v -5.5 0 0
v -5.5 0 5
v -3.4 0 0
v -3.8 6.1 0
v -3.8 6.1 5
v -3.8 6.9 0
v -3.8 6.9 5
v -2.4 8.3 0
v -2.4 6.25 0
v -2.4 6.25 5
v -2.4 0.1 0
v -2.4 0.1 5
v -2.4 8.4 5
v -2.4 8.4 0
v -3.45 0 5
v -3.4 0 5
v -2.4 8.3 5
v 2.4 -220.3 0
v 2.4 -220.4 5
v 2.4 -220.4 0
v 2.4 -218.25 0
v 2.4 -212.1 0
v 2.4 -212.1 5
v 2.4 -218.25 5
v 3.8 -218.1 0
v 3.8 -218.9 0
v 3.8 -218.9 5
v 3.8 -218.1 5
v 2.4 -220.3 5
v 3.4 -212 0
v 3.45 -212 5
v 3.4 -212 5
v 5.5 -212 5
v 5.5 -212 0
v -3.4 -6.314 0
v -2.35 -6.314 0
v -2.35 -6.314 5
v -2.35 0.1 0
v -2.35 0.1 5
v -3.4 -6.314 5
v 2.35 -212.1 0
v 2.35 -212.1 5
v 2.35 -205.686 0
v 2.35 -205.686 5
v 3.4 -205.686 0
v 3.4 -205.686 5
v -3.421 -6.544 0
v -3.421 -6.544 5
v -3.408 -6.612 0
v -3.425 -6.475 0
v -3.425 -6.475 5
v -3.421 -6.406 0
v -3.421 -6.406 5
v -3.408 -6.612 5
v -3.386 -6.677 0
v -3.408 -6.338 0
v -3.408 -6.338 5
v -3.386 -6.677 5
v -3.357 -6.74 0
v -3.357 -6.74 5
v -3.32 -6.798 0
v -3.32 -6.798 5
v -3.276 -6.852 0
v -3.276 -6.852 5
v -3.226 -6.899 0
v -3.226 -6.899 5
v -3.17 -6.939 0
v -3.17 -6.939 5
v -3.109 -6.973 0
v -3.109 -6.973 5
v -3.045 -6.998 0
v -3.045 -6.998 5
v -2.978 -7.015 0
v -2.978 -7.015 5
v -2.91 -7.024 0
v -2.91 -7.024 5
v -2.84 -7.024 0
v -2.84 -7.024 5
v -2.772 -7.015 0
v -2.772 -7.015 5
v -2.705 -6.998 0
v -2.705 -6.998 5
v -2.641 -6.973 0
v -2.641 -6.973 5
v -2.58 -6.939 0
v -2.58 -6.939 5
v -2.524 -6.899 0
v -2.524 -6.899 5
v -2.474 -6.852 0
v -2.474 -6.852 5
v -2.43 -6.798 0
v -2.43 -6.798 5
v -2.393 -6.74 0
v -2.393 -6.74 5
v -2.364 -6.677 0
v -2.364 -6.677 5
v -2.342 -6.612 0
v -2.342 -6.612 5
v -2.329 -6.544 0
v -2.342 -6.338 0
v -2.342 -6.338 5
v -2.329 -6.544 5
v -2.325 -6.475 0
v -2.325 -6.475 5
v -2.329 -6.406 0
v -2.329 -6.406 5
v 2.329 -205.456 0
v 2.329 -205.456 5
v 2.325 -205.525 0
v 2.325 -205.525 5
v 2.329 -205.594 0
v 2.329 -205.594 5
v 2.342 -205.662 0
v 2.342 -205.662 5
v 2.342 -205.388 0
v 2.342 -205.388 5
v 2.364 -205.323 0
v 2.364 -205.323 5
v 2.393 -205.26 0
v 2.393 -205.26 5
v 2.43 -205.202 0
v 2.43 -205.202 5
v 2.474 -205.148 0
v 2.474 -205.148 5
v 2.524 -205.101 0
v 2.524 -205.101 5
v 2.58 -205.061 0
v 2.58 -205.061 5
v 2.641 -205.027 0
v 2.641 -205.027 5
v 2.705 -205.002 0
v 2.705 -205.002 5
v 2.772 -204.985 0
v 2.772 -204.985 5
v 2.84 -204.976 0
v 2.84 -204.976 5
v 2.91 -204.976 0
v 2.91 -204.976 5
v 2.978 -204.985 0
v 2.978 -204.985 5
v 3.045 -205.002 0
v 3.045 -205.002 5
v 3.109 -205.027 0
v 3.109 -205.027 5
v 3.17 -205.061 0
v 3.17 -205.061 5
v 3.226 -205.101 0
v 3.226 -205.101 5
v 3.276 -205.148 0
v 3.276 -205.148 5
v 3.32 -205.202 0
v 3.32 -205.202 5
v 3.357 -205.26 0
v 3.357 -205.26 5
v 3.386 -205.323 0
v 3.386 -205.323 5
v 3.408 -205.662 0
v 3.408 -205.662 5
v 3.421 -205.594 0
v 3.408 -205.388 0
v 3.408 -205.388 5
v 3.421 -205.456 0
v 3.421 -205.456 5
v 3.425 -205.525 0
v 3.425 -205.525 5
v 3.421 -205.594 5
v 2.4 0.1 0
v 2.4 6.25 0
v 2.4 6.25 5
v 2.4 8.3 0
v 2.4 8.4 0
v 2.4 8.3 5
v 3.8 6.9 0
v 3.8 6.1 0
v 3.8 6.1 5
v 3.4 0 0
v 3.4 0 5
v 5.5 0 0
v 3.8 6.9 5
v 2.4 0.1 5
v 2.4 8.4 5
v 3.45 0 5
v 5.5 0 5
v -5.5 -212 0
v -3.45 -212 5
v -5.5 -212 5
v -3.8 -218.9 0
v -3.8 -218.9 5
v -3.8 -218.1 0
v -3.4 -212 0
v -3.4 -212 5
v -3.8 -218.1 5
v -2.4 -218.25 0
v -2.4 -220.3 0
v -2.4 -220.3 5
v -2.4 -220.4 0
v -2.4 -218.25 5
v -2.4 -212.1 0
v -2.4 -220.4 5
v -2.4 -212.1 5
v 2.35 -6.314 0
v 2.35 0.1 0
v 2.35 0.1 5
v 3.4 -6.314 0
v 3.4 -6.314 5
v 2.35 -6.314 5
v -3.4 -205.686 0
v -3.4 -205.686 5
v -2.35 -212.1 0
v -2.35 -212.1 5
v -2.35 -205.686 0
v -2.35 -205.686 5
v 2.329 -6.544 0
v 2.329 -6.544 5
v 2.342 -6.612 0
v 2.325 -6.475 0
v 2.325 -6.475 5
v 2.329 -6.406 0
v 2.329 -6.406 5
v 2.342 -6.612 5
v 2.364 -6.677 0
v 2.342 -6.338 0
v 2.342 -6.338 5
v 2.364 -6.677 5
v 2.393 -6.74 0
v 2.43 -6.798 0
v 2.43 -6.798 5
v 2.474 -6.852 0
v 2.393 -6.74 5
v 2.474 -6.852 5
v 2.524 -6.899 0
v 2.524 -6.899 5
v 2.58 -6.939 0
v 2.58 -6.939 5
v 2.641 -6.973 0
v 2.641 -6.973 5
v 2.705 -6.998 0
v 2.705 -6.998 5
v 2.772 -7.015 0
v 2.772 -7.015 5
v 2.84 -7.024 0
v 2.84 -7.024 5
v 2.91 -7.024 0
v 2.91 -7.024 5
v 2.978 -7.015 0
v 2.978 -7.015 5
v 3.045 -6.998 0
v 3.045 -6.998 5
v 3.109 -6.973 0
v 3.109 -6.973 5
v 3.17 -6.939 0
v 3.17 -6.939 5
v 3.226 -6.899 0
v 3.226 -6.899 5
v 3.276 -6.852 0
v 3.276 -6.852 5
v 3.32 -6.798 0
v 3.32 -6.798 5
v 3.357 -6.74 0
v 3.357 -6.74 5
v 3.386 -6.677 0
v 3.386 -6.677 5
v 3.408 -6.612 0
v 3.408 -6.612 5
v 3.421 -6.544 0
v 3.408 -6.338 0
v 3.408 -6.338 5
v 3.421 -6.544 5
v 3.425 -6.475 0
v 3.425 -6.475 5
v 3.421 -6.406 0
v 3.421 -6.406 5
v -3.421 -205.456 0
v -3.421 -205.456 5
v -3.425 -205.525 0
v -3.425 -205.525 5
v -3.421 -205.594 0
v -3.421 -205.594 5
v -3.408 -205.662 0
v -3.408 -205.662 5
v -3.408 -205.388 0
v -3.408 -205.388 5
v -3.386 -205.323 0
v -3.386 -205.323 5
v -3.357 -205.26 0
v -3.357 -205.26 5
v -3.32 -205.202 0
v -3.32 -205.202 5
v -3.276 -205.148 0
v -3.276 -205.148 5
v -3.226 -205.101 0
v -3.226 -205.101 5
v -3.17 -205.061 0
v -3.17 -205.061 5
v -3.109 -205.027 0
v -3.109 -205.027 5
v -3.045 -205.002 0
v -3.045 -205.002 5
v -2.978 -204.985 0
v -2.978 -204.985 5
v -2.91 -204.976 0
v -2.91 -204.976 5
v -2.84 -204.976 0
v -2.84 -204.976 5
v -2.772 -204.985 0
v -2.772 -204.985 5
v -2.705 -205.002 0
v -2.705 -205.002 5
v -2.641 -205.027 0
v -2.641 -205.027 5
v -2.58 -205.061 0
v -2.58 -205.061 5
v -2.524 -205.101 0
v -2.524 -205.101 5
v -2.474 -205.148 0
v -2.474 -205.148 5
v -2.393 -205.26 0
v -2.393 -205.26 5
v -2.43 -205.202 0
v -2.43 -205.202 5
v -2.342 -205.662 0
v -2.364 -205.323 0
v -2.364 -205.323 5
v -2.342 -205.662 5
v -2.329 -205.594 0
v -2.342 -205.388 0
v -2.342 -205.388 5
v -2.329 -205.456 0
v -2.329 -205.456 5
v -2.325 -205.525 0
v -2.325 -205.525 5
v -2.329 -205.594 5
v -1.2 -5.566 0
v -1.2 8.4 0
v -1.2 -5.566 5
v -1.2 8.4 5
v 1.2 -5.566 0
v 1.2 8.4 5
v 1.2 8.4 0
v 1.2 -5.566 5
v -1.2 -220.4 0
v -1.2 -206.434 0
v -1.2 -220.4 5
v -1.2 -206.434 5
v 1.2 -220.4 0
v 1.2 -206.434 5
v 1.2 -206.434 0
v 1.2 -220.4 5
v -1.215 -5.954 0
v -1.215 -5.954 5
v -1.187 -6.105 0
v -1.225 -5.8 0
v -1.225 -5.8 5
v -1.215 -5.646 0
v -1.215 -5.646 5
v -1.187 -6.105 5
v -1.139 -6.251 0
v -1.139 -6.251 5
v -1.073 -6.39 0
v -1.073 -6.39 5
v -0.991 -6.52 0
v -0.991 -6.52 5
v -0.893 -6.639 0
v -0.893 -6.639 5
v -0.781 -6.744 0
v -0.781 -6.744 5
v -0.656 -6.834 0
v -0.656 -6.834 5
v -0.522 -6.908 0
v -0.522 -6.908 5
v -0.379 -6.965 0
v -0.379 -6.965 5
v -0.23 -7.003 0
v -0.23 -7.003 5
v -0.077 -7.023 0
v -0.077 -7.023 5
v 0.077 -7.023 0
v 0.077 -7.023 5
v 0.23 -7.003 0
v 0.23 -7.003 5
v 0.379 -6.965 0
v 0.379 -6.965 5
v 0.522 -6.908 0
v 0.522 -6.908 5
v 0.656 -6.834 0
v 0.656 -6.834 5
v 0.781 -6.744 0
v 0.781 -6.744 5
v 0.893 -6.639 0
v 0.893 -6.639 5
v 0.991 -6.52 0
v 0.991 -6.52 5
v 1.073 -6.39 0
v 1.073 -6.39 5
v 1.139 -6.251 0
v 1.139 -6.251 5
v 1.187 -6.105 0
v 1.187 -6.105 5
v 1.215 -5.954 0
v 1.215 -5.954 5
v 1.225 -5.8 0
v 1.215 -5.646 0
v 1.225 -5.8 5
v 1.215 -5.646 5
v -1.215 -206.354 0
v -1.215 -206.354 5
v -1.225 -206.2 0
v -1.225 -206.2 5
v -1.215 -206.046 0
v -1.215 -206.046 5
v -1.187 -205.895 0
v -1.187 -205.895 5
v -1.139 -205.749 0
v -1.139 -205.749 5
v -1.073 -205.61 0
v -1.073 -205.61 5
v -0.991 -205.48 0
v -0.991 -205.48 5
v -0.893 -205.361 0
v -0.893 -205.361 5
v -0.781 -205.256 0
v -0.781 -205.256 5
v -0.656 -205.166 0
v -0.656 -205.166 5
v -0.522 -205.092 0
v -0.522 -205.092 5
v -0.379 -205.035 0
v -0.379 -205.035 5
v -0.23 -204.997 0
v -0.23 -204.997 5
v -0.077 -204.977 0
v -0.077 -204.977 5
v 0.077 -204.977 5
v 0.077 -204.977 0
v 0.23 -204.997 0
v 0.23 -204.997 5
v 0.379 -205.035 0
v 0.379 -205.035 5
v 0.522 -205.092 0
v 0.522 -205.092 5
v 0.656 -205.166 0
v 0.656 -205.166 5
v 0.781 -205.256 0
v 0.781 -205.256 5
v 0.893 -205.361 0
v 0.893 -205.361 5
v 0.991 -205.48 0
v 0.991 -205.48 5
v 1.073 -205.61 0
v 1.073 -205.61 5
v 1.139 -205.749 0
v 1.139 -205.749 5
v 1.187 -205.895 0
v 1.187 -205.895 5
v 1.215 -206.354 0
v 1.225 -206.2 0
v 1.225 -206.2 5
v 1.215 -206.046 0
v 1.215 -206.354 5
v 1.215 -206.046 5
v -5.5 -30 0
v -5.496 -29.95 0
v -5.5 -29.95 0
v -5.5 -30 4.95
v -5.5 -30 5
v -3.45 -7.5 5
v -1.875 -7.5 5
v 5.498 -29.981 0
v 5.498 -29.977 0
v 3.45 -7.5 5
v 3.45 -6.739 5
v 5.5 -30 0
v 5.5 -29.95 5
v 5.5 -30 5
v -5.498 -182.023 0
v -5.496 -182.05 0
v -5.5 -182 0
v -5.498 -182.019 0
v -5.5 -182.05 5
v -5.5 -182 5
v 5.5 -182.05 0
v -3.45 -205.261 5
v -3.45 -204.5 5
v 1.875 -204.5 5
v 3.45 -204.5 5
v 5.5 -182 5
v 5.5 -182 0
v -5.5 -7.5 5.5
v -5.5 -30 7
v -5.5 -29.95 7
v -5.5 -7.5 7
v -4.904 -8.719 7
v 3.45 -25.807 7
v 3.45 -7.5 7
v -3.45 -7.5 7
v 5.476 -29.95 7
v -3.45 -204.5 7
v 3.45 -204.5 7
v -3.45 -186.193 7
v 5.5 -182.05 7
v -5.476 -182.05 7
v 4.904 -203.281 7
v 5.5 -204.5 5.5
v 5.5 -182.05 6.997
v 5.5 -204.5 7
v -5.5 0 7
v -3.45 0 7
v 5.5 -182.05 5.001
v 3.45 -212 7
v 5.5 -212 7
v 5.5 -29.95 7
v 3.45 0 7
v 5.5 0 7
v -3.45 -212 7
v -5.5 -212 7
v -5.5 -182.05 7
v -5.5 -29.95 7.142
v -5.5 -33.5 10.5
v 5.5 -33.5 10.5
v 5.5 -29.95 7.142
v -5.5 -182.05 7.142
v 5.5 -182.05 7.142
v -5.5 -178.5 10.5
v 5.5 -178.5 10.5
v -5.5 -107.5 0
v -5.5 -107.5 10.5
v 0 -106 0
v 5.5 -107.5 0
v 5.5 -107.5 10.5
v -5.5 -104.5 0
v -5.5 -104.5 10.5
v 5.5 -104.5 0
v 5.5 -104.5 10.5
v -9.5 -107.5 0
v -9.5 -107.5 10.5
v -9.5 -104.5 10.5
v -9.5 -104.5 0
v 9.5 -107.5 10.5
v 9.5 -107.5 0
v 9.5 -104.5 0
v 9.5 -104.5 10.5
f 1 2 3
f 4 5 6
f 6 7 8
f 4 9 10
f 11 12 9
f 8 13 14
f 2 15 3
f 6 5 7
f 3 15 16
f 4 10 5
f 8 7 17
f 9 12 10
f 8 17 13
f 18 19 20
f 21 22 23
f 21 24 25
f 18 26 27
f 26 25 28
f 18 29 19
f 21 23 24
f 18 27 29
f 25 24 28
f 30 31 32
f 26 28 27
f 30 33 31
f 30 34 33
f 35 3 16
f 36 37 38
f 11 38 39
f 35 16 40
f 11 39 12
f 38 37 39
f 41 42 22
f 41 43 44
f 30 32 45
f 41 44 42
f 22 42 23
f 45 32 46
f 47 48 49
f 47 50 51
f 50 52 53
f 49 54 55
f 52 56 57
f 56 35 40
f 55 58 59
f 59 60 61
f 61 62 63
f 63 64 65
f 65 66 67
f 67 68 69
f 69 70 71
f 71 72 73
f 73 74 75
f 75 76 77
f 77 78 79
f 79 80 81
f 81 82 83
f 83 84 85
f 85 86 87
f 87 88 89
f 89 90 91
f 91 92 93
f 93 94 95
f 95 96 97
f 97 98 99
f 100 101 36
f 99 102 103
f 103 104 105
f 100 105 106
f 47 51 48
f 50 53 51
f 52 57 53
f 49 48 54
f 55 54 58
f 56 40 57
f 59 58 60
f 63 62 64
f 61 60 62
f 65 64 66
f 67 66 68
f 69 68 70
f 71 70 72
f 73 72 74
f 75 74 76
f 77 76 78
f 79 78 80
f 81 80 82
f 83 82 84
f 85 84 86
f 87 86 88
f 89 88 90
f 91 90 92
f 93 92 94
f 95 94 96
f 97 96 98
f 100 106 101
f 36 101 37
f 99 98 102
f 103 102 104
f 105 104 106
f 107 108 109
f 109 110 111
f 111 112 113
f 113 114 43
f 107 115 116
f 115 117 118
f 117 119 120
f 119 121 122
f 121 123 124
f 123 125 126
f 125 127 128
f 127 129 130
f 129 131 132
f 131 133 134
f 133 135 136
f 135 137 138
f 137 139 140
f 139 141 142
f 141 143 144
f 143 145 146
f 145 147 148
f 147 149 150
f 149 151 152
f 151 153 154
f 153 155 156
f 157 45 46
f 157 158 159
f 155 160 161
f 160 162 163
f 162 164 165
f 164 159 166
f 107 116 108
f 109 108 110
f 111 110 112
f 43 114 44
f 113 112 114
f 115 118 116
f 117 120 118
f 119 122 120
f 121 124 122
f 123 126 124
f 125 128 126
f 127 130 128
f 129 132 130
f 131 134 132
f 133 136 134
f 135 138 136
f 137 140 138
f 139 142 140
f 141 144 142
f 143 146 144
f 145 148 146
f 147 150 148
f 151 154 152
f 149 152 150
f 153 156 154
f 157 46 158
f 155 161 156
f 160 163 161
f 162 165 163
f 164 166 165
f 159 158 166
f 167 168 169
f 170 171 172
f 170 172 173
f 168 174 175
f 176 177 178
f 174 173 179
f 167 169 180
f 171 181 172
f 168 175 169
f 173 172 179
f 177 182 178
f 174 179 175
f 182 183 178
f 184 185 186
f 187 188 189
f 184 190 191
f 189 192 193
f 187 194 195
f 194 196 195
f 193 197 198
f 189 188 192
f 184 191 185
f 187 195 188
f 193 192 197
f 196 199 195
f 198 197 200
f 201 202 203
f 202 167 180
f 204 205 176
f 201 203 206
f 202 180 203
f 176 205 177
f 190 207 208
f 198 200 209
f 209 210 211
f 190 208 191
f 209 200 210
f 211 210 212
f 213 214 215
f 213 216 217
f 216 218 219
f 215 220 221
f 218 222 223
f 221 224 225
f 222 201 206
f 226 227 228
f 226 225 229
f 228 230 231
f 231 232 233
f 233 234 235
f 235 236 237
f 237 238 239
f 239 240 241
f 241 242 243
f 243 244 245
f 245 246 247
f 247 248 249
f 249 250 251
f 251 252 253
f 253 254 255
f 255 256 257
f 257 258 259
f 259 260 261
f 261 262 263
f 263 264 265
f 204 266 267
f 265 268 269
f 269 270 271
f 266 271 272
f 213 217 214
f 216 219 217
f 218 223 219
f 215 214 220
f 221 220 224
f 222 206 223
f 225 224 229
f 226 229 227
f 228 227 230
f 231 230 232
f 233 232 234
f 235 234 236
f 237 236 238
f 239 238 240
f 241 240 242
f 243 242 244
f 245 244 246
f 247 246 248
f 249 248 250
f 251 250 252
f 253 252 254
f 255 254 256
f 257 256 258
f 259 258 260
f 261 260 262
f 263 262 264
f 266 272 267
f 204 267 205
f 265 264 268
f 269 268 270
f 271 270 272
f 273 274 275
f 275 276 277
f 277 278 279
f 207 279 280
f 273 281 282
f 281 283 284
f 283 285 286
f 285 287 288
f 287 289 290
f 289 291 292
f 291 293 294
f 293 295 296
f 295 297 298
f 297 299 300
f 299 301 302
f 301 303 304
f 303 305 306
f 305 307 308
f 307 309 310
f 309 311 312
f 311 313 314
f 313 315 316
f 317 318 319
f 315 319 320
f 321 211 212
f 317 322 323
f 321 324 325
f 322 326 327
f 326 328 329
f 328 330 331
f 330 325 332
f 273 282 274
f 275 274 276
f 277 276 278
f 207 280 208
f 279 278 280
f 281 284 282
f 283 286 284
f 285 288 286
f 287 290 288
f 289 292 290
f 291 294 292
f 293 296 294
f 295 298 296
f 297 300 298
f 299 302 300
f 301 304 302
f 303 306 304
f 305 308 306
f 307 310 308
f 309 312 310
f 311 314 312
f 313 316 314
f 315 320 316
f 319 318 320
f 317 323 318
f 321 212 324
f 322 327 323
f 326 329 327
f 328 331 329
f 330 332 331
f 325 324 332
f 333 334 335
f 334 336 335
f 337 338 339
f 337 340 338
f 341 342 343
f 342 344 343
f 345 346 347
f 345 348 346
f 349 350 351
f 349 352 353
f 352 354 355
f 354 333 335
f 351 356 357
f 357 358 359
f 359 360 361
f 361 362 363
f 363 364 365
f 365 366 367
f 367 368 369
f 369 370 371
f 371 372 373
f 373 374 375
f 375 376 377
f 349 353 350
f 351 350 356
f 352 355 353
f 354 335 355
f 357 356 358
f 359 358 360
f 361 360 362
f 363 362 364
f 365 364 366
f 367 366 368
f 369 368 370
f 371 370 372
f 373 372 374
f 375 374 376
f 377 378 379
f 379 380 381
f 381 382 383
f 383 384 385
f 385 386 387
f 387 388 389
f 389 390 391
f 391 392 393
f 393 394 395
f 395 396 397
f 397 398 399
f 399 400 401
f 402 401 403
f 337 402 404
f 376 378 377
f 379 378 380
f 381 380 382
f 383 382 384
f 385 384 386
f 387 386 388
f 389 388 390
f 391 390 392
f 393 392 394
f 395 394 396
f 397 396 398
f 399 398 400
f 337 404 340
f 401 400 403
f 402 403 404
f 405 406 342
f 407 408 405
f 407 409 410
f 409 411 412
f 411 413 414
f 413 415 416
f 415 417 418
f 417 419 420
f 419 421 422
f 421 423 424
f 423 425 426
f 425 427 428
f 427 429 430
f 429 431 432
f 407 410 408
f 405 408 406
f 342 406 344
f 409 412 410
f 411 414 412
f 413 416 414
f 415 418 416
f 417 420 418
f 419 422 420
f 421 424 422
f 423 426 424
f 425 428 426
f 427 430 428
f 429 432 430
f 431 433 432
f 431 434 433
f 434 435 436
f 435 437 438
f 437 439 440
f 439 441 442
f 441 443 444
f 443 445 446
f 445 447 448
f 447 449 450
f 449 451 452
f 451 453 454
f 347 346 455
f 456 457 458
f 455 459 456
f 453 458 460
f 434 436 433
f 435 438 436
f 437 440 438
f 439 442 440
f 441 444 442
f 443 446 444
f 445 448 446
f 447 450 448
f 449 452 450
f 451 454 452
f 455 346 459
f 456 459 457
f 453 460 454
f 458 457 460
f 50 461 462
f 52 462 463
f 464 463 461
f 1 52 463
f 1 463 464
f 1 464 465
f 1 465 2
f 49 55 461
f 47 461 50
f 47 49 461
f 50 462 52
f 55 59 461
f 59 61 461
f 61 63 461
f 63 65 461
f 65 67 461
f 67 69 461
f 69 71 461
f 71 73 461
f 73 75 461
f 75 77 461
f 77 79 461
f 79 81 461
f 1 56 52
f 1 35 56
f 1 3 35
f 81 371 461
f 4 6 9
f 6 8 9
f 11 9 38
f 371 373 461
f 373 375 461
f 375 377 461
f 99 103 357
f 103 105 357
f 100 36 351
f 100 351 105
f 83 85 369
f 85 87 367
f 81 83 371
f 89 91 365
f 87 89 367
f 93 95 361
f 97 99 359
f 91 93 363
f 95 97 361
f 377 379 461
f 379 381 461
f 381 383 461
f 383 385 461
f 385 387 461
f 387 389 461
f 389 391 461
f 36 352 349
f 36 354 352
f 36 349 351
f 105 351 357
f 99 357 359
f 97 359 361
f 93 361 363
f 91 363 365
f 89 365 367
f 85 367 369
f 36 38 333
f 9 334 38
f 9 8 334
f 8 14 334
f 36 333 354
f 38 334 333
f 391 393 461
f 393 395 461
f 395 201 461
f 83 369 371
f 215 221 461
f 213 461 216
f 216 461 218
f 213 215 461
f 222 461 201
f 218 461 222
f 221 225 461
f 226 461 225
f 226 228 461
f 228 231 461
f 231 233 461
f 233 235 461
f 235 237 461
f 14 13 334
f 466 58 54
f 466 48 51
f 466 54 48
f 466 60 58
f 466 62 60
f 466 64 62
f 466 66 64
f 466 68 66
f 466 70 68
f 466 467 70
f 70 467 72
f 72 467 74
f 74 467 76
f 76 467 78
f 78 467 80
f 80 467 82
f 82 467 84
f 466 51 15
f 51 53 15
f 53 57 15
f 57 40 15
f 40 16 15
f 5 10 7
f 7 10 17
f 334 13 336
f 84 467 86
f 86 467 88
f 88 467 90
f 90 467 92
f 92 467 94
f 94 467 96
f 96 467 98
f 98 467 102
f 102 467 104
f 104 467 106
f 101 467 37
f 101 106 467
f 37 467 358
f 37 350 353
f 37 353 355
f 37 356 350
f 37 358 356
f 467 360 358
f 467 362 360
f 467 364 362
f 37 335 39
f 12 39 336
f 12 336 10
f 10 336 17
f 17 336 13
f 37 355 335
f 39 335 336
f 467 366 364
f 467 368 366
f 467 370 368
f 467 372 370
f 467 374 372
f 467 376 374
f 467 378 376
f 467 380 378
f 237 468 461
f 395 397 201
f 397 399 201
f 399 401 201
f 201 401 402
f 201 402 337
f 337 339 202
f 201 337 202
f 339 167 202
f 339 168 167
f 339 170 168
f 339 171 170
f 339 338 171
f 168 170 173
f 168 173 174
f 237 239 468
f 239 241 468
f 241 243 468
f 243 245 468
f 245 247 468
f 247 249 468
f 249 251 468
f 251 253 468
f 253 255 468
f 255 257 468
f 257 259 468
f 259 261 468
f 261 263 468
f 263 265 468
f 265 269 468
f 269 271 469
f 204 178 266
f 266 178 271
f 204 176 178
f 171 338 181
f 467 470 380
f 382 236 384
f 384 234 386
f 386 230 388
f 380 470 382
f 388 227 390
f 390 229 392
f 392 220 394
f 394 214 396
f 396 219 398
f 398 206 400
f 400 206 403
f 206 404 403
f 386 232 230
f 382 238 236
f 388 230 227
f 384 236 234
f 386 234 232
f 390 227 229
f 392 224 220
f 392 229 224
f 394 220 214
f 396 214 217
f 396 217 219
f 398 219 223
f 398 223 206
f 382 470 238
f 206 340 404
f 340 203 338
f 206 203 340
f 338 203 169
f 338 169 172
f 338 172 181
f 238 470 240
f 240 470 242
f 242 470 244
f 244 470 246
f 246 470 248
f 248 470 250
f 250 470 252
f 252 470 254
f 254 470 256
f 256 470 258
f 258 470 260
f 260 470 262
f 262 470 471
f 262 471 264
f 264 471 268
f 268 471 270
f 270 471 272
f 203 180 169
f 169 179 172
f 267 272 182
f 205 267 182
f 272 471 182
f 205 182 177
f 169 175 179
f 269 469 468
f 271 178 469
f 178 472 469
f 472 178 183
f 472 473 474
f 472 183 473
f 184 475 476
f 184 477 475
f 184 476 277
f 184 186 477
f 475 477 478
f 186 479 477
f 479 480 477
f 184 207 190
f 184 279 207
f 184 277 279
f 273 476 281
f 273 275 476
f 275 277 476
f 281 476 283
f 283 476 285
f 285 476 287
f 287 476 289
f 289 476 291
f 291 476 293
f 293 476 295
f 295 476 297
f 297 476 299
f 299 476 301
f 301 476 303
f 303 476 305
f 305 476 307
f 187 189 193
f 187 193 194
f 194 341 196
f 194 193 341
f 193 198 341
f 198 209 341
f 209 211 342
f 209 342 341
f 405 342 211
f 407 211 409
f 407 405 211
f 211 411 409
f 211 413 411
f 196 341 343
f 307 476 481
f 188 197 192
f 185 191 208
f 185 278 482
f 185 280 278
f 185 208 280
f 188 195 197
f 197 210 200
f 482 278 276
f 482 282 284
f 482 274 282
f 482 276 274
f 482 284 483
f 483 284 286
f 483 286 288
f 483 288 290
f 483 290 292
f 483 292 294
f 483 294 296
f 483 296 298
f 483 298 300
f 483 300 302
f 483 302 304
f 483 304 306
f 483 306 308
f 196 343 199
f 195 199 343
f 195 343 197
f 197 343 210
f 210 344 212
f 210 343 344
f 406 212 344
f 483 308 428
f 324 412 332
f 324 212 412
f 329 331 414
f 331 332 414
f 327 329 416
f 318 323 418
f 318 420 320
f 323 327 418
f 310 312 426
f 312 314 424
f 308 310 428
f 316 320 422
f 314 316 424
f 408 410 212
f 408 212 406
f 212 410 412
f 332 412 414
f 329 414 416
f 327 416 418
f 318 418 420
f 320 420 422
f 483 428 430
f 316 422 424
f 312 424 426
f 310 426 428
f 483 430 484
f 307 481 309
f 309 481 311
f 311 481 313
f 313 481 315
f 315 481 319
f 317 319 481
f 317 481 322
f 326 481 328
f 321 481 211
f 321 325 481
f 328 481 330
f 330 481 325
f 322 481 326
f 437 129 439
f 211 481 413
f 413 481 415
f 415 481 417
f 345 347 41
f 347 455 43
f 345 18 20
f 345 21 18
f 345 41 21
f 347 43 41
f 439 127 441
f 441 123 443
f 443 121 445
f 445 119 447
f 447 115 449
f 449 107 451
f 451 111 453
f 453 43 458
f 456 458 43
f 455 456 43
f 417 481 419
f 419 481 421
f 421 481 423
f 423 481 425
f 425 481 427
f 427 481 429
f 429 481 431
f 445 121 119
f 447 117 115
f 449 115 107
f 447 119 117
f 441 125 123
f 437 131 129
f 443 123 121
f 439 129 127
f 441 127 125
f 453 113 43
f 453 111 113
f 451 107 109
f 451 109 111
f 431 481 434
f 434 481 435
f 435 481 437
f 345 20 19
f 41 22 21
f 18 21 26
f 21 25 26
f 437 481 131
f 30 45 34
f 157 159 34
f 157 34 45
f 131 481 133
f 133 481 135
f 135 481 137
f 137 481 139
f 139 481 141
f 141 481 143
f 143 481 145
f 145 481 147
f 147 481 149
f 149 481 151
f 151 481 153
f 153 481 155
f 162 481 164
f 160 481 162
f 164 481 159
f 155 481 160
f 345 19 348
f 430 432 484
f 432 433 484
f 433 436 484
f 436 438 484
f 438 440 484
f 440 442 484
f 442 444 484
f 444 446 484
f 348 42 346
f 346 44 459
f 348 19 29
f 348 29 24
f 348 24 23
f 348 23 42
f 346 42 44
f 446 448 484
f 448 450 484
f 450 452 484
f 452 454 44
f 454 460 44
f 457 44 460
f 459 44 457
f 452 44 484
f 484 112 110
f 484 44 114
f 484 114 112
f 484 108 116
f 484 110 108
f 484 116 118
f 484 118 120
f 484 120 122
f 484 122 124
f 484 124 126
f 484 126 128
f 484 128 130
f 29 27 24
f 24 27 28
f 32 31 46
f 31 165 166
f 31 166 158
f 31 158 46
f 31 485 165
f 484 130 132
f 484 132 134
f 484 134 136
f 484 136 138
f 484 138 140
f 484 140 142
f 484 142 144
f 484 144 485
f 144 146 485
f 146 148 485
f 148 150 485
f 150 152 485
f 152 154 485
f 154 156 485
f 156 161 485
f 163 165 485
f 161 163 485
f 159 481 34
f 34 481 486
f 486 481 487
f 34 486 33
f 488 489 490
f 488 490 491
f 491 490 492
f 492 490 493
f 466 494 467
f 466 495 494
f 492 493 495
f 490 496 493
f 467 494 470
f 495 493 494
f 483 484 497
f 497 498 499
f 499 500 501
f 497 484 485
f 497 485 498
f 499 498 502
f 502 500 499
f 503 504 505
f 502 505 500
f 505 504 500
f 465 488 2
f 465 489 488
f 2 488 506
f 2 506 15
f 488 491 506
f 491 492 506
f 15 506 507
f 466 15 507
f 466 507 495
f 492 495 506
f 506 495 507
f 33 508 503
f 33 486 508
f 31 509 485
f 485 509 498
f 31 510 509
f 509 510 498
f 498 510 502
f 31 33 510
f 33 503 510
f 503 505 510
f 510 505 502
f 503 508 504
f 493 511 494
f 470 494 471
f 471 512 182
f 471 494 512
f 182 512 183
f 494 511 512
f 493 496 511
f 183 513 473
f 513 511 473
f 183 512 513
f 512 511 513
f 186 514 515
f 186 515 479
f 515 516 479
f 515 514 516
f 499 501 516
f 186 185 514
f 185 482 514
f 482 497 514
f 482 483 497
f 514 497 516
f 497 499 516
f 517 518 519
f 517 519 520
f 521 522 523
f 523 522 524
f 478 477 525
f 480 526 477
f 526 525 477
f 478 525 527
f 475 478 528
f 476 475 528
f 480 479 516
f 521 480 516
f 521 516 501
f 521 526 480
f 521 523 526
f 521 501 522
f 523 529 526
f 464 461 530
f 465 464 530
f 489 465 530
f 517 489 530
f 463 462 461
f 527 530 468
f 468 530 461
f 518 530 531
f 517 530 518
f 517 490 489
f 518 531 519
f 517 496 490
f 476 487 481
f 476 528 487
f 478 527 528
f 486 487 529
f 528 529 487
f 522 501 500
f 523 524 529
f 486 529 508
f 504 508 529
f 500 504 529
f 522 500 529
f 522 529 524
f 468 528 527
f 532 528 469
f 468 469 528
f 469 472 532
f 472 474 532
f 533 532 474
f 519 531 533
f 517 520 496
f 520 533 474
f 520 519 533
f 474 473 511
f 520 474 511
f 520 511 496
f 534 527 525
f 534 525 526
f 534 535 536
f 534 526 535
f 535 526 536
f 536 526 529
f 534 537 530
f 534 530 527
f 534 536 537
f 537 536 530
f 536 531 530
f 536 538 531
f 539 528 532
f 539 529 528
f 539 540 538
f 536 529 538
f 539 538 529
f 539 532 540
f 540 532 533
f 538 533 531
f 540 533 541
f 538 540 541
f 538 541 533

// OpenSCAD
$fn = 50;

difference() {
	union() {
		translate(v = [0, 0, 0]) {
			rotate(a = [0, 0, 0]) {
				difference() {
					union() {
						translate(v = [0, 0, 0]) {
							rotate(a = [0, 0, 0]) {
								difference() {
									union() {
										translate(v = [0, 0, 0]) {
											rotate(a = [0, 0, 0]) {
												difference() {
													union() {
														translate(v = [0, 0, 0]) {
															rotate(a = [0, 0, 0]) {
																difference() {
																	union() {
																		translate(v = [-5.5, -30.0, 0]) {
																			cube(size = [11.0, 38.4, 5.0]);
																		}
																	}
																	union() {
																		translate(v = [0, 0, -0.1]) {
																			linear_extrude(height = 5.2) {
																				polygon(points = [[-2.4, 0], [-2.4, 6.25], [-3.8, 6.1], [-3.8, 6.8999999999999995], [-2.4, 8.299999999999999], [-2.4, 9.399999999999999], [-5.7, 9.399999999999999], [-5.7, 0]]);
																			}
																		}
																		translate(v = [0, 0, -0.1]) {
																			linear_extrude(height = 5.2) {
																				polygon(points = [[-2.35, -6.5], [-2.35, -6.3375], [-2.35, -6.175], [-2.35, -6.0125], [-2.35, -5.85], [-2.35, -5.6875], [-2.35, -5.525], [-2.35, -5.3625], [-2.35, -5.2], [-2.35, -5.0375], [-2.35, -4.875], [-2.35, -4.7125], [-2.35, -4.55], [-2.35, -4.3875], [-2.35, -4.225], [-2.35, -4.0625], [-2.35, -3.9], [-2.35, -3.7375], [-2.35, -3.575], [-2.35, -3.4125], [-2.35, -3.25], [-2.35, -3.0875], [-2.35, -2.925], [-2.35, -2.7625], [-2.35, -2.6], [-2.35, -2.4375], [-2.35, -2.2750000000000004], [-2.35, -2.1125], [-2.35, -1.9500000000000002], [-2.35, -1.7874999999999996], [-2.35, -1.625], [-2.35, -1.4625000000000004], [-2.35, -1.2999999999999998], [-2.35, -1.1375000000000002], [-2.35, -0.9749999999999996], [-2.35, -0.8125], [-2.35, -0.6500000000000004], [-2.35, -0.4874999999999998], [-2.35, -0.3250000000000002], [-2.35, -0.16249999999999964], [-2.35, 0.0], [-2.35, 0.1], [-3.4, 0.1], [-3.4, -6.5]]);
																			}
																		}
																		translate(v = [-2.875, -6.475, -0.1]) {
																			cylinder(h = 5.2, r = 0.55);
																		}
																		translate(v = [0, 0, -0.1]) {
																			linear_extrude(height = 5.2) {
																				polygon(points = [[2.4, 0], [2.4, 6.25], [3.8, 6.1], [3.8, 6.8999999999999995], [2.4, 8.299999999999999], [2.4, 9.399999999999999], [5.7, 9.399999999999999], [5.7, 0]]);
																			}
																		}
																		translate(v = [0, 0, -0.1]) {
																			linear_extrude(height = 5.2) {
																				polygon(points = [[2.35, -6.5], [2.35, -6.3375], [2.35, -6.175], [2.35, -6.0125], [2.35, -5.85], [2.35, -5.6875], [2.35, -5.525], [2.35, -5.3625], [2.35, -5.2], [2.35, -5.0375], [2.35, -4.875], [2.35, -4.7125], [2.35, -4.55], [2.35, -4.3875], [2.35, -4.225], [2.35, -4.0625], [2.35, -3.9], [2.35, -3.7375], [2.35, -3.575], [2.35, -3.4125], [2.35, -3.25], [2.35, -3.0875], [2.35, -2.925], [2.35, -2.7625], [2.35, -2.6], [2.35, -2.4375], [2.35, -2.2750000000000004], [2.35, -2.1125], [2.35, -1.9500000000000002], [2.35, -1.7874999999999996], [2.35, -1.625], [2.35, -1.4625000000000004], [2.35, -1.2999999999999998], [2.35, -1.1375000000000002], [2.35, -0.9749999999999996], [2.35, -0.8125], [2.35, -0.6500000000000004], [2.35, -0.4874999999999998], [2.35, -0.3250000000000002], [2.35, -0.16249999999999964], [2.35, 0.0], [2.35, 0.1], [3.4, 0.1], [3.4, -6.5]]);
																			}
																		}
																		translate(v = [2.875, -6.475, -0.1]) {
																			cylinder(h = 5.2, r = 0.55);
																		}
																		translate(v = [0, 0, -0.1]) {
																			linear_extrude(height = 5.2) {
																				polygon(points = [[-1.2, -5.85], [-1.2, -5.632142857142857], [-1.2, -5.414285714285714], [-1.2, -5.196428571428571], [-1.2, -4.978571428571428], [-1.2, -4.760714285714285], [-1.2, -4.542857142857143], [-1.2, -4.324999999999999], [-1.2, -4.107142857142857], [-1.2, -3.8892857142857142], [-1.2, -3.6714285714285713], [-1.2, -3.4535714285714283], [-1.2, -3.2357142857142853], [-1.2, -3.0178571428571423], [-1.2, -2.8], [-1.2, -2.582142857142857], [-1.2, -2.364285714285714], [-1.2, -2.146428571428571], [-1.2, -1.9285714285714284], [-1.2, -1.7107142857142854], [-1.2, -1.4928571428571429], [-1.2, -1.2749999999999995], [-1.2, -1.057142857142857], [-1.2, -0.8392857142857135], [-1.2, -0.621428571428571], [-1.2, -0.40357142857142847], [-1.2, -0.18571428571428505], [-1.2, 0], [-1.2, 0.03214285714285747], [-1.2, 0.25], [-1.2, 0.4678571428571434], [-1.2, 0.6857142857142859], [-1.2, 0.9035714285714294], [-1.2, 1.1214285714285719], [-1.2, 1.3392857142857144], [-1.2, 1.5571428571428578], [-1.2, 1.7750000000000004], [-1.2, 1.9928571428571429], [-1.2, 2.2107142857142854], [-1.2, 2.428571428571429], [-1.2, 2.6464285714285722], [-1.2, 2.864285714285714], [-1.2, 3.0821428571428573], [-1.2, 3.3000000000000007], [-1.2, 3.5178571428571423], [-1.2, 3.7357142857142858], [-1.2, 3.953571428571429], [-1.2, 4.171428571428573], [-1.2, 4.389285714285714], [-1.2, 4.607142857142858], [-1.2, 4.825000000000001], [-1.2, 5.042857142857143], [-1.2, 5.260714285714286], [-1.2, 5.4785714285714295], [-1.2, 5.696428571428571], [-1.2, 5.914285714285715], [-1.2, 6.1], [-1.2, 6.132142857142858], [-1.2, 6.25], [-1.2, 6.35], [-1.2, 6.567857142857143], [-1.2, 6.7857142857142865], [-1.2, 7.003571428571428], [-1.2, 7.2214285714285715], [-1.2, 7.439285714285715], [-1.2, 7.657142857142858], [-1.2, 7.875], [-1.2, 8.092857142857143], [-1.2, 8.310714285714287], [-1.2, 8.528571428571428], [-1.2, 8.746428571428572], [-1.2, 8.964285714285715], [-1.2, 9.182142857142857], [-1.2, 9.4], [1.2, 9.4], [1.2, 9.182142857142857], [1.2, 8.964285714285715], [1.2, 8.746428571428572], [1.2, 8.528571428571428], [1.2, 8.310714285714287], [1.2, 8.092857142857143], [1.2, 7.875], [1.2, 7.657142857142858], [1.2, 7.439285714285715], [1.2, 7.2214285714285715], [1.2, 7.003571428571428], [1.2, 6.7857142857142865], [1.2, 6.567857142857143], [1.2, 6.35], [1.2, 6.25], [1.2, 6.132142857142858], [1.2, 6.1], [1.2, 5.914285714285715], [1.2, 5.696428571428571], [1.2, 5.4785714285714295], [1.2, 5.260714285714286], [1.2, 5.042857142857143], [1.2, 4.825000000000001], [1.2, 4.607142857142858], [1.2, 4.389285714285714], [1.2, 4.171428571428573], [1.2, 3.953571428571429], [1.2, 3.7357142857142858], [1.2, 3.5178571428571423], [1.2, 3.3000000000000007], [1.2, 3.0821428571428573], [1.2, 2.864285714285714], [1.2, 2.6464285714285722], [1.2, 2.428571428571429], [1.2, 2.2107142857142854], [1.2, 1.9928571428571429], [1.2, 1.7750000000000004], [1.2, 1.5571428571428578], [1.2, 1.3392857142857144], [1.2, 1.1214285714285719], [1.2, 0.9035714285714294], [1.2, 0.6857142857142859], [1.2, 0.4678571428571434], [1.2, 0.25], [1.2, 0.03214285714285747], [1.2, 0], [1.2, -0.18571428571428505], [1.2, -0.40357142857142847], [1.2, -0.621428571428571], [1.2, -0.8392857142857135], [1.2, -1.057142857142857], [1.2, -1.2749999999999995], [1.2, -1.4928571428571429], [1.2, -1.7107142857142854], [1.2, -1.9285714285714284], [1.2, -2.146428571428571], [1.2, -2.364285714285714], [1.2, -2.582142857142857], [1.2, -2.8], [1.2, -3.0178571428571423], [1.2, -3.2357142857142853], [1.2, -3.4535714285714283], [1.2, -3.6714285714285713], [1.2, -3.8892857142857142], [1.2, -4.107142857142857], [1.2, -4.324999999999999], [1.2, -4.542857142857143], [1.2, -4.760714285714285], [1.2, -4.978571428571428], [1.2, -5.196428571428571], [1.2, -5.414285714285714], [1.2, -5.632142857142857], [1.2, -5.85]]);
																			}
																		}
																		translate(v = [0, -5.8, -0.1]) {
																			cylinder(h = 5.2, r = 1.2249999999999999);
																		}
																	}
																}
															}
														}
														translate(v = [0, 0, 0]) {
															rotate(a = [0, 0, 0]) {
																difference() {
																	union() {
																		translate(v = [-5.5, -30.0, 4.95]) {
																			cube(size = [11.0, 22.5, 2.05]);
																		}
																	}
																	union();
																}
															}
														}
														translate(v = [-5.5, -30.0, 4.95]) {
															cube(size = [2.0500000000000003, 30.0, 2.05]);
														}
														translate(v = [3.4499999999999997, -30.0, 4.95]) {
															cube(size = [2.0500000000000003, 30.0, 2.05]);
														}
													}
													union();
												}
											}
										}
									}
									union();
								}
							}
						}
						translate(v = [0, -212.0, 0]) {
							rotate(a = [0, 0, 180]) {
								difference() {
									union() {
										translate(v = [0, 0, 0]) {
											rotate(a = [0, 0, 0]) {
												difference() {
													union() {
														translate(v = [0, 0, 0]) {
															rotate(a = [0, 0, 0]) {
																difference() {
																	union() {
																		translate(v = [-5.5, -30.0, 0]) {
																			cube(size = [11.0, 38.4, 5.0]);
																		}
																	}
																	union() {
																		translate(v = [0, 0, -0.1]) {
																			linear_extrude(height = 5.2) {
																				polygon(points = [[-2.4, 0], [-2.4, 6.25], [-3.8, 6.1], [-3.8, 6.8999999999999995], [-2.4, 8.299999999999999], [-2.4, 9.399999999999999], [-5.7, 9.399999999999999], [-5.7, 0]]);
																			}
																		}
																		translate(v = [0, 0, -0.1]) {
																			linear_extrude(height = 5.2) {
																				polygon(points = [[-2.35, -6.5], [-2.35, -6.3375], [-2.35, -6.175], [-2.35, -6.0125], [-2.35, -5.85], [-2.35, -5.6875], [-2.35, -5.525], [-2.35, -5.3625], [-2.35, -5.2], [-2.35, -5.0375], [-2.35, -4.875], [-2.35, -4.7125], [-2.35, -4.55], [-2.35, -4.3875], [-2.35, -4.225], [-2.35, -4.0625], [-2.35, -3.9], [-2.35, -3.7375], [-2.35, -3.575], [-2.35, -3.4125], [-2.35, -3.25], [-2.35, -3.0875], [-2.35, -2.925], [-2.35, -2.7625], [-2.35, -2.6], [-2.35, -2.4375], [-2.35, -2.2750000000000004], [-2.35, -2.1125], [-2.35, -1.9500000000000002], [-2.35, -1.7874999999999996], [-2.35, -1.625], [-2.35, -1.4625000000000004], [-2.35, -1.2999999999999998], [-2.35, -1.1375000000000002], [-2.35, -0.9749999999999996], [-2.35, -0.8125], [-2.35, -0.6500000000000004], [-2.35, -0.4874999999999998], [-2.35, -0.3250000000000002], [-2.35, -0.16249999999999964], [-2.35, 0.0], [-2.35, 0.1], [-3.4, 0.1], [-3.4, -6.5]]);
																			}
																		}
																		translate(v = [-2.875, -6.475, -0.1]) {
																			cylinder(h = 5.2, r = 0.55);
																		}
																		translate(v = [0, 0, -0.1]) {
																			linear_extrude(height = 5.2) {
																				polygon(points = [[2.4, 0], [2.4, 6.25], [3.8, 6.1], [3.8, 6.8999999999999995], [2.4, 8.299999999999999], [2.4, 9.399999999999999], [5.7, 9.399999999999999], [5.7, 0]]);
																			}
																		}
																		translate(v = [0, 0, -0.1]) {
																			linear_extrude(height = 5.2) {
																				polygon(points = [[2.35, -6.5], [2.35, -6.3375], [2.35, -6.175], [2.35, -6.0125], [2.35, -5.85], [2.35, -5.6875], [2.35, -5.525], [2.35, -5.3625], [2.35, -5.2], [2.35, -5.0375], [2.35, -4.875], [2.35, -4.7125], [2.35, -4.55], [2.35, -4.3875], [2.35, -4.225], [2.35, -4.0625], [2.35, -3.9], [2.35, -3.7375], [2.35, -3.575], [2.35, -3.4125], [2.35, -3.25], [2.35, -3.0875], [2.35, -2.925], [2.35, -2.7625], [2.35, -2.6], [2.35, -2.4375], [2.35, -2.2750000000000004], [2.35, -2.1125], [2.35, -1.9500000000000002], [2.35, -1.7874999999999996], [2.35, -1.625], [2.35, -1.4625000000000004], [2.35, -1.2999999999999998], [2.35, -1.1375000000000002], [2.35, -0.9749999999999996], [2.35, -0.8125], [2.35, -0.6500000000000004], [2.35, -0.4874999999999998], [2.35, -0.3250000000000002], [2.35, -0.16249999999999964], [2.35, 0.0], [2.35, 0.1], [3.4, 0.1], [3.4, -6.5]]);
																			}
																		}
																		translate(v = [2.875, -6.475, -0.1]) {
																			cylinder(h = 5.2, r = 0.55);
																		}
																		translate(v = [0, 0, -0.1]) {
																			linear_extrude(height = 5.2) {
																				polygon(points = [[-1.2, -5.85], [-1.2, -5.632142857142857], [-1.2, -5.414285714285714], [-1.2, -5.196428571428571], [-1.2, -4.978571428571428], [-1.2, -4.760714285714285], [-1.2, -4.542857142857143], [-1.2, -4.324999999999999], [-1.2, -4.107142857142857], [-1.2, -3.8892857142857142], [-1.2, -3.6714285714285713], [-1.2, -3.4535714285714283], [-1.2, -3.2357142857142853], [-1.2, -3.0178571428571423], [-1.2, -2.8], [-1.2, -2.582142857142857], [-1.2, -2.364285714285714], [-1.2, -2.146428571428571], [-1.2, -1.9285714285714284], [-1.2, -1.7107142857142854], [-1.2, -1.4928571428571429], [-1.2, -1.2749999999999995], [-1.2, -1.057142857142857], [-1.2, -0.8392857142857135], [-1.2, -0.621428571428571], [-1.2, -0.40357142857142847], [-1.2, -0.18571428571428505], [-1.2, 0], [-1.2, 0.03214285714285747], [-1.2, 0.25], [-1.2, 0.4678571428571434], [-1.2, 0.6857142857142859], [-1.2, 0.9035714285714294], [-1.2, 1.1214285714285719], [-1.2, 1.3392857142857144], [-1.2, 1.5571428571428578], [-1.2, 1.7750000000000004], [-1.2, 1.9928571428571429], [-1.2, 2.2107142857142854], [-1.2, 2.428571428571429], [-1.2, 2.6464285714285722], [-1.2, 2.864285714285714], [-1.2, 3.0821428571428573], [-1.2, 3.3000000000000007], [-1.2, 3.5178571428571423], [-1.2, 3.7357142857142858], [-1.2, 3.953571428571429], [-1.2, 4.171428571428573], [-1.2, 4.389285714285714], [-1.2, 4.607142857142858], [-1.2, 4.825000000000001], [-1.2, 5.042857142857143], [-1.2, 5.260714285714286], [-1.2, 5.4785714285714295], [-1.2, 5.696428571428571], [-1.2, 5.914285714285715], [-1.2, 6.1], [-1.2, 6.132142857142858], [-1.2, 6.25], [-1.2, 6.35], [-1.2, 6.567857142857143], [-1.2, 6.7857142857142865], [-1.2, 7.003571428571428], [-1.2, 7.2214285714285715], [-1.2, 7.439285714285715], [-1.2, 7.657142857142858], [-1.2, 7.875], [-1.2, 8.092857142857143], [-1.2, 8.310714285714287], [-1.2, 8.528571428571428], [-1.2, 8.746428571428572], [-1.2, 8.964285714285715], [-1.2, 9.182142857142857], [-1.2, 9.4], [1.2, 9.4], [1.2, 9.182142857142857], [1.2, 8.964285714285715], [1.2, 8.746428571428572], [1.2, 8.528571428571428], [1.2, 8.310714285714287], [1.2, 8.092857142857143], [1.2, 7.875], [1.2, 7.657142857142858], [1.2, 7.439285714285715], [1.2, 7.2214285714285715], [1.2, 7.003571428571428], [1.2, 6.7857142857142865], [1.2, 6.567857142857143], [1.2, 6.35], [1.2, 6.25], [1.2, 6.132142857142858], [1.2, 6.1], [1.2, 5.914285714285715], [1.2, 5.696428571428571], [1.2, 5.4785714285714295], [1.2, 5.260714285714286], [1.2, 5.042857142857143], [1.2, 4.825000000000001], [1.2, 4.607142857142858], [1.2, 4.389285714285714], [1.2, 4.171428571428573], [1.2, 3.953571428571429], [1.2, 3.7357142857142858], [1.2, 3.5178571428571423], [1.2, 3.3000000000000007], [1.2, 3.0821428571428573], [1.2, 2.864285714285714], [1.2, 2.6464285714285722], [1.2, 2.428571428571429], [1.2, 2.2107142857142854], [1.2, 1.9928571428571429], [1.2, 1.7750000000000004], [1.2, 1.5571428571428578], [1.2, 1.3392857142857144], [1.2, 1.1214285714285719], [1.2, 0.9035714285714294], [1.2, 0.6857142857142859], [1.2, 0.4678571428571434], [1.2, 0.25], [1.2, 0.03214285714285747], [1.2, 0], [1.2, -0.18571428571428505], [1.2, -0.40357142857142847], [1.2, -0.621428571428571], [1.2, -0.8392857142857135], [1.2, -1.057142857142857], [1.2, -1.2749999999999995], [1.2, -1.4928571428571429], [1.2, -1.7107142857142854], [1.2, -1.9285714285714284], [1.2, -2.146428571428571], [1.2, -2.364285714285714], [1.2, -2.582142857142857], [1.2, -2.8], [1.2, -3.0178571428571423], [1.2, -3.2357142857142853], [1.2, -3.4535714285714283], [1.2, -3.6714285714285713], [1.2, -3.8892857142857142], [1.2, -4.107142857142857], [1.2, -4.324999999999999], [1.2, -4.542857142857143], [1.2, -4.760714285714285], [1.2, -4.978571428571428], [1.2, -5.196428571428571], [1.2, -5.414285714285714], [1.2, -5.632142857142857], [1.2, -5.85]]);
																			}
																		}
																		translate(v = [0, -5.8, -0.1]) {
																			cylinder(h = 5.2, r = 1.2249999999999999);
																		}
																	}
																}
															}
														}
														translate(v = [0, 0, 0]) {
															rotate(a = [0, 0, 0]) {
																difference() {
																	union() {
																		translate(v = [-5.5, -30.0, 4.95]) {
																			cube(size = [11.0, 22.5, 2.05]);
																		}
																	}
																	union();
																}
															}
														}
														translate(v = [-5.5, -30.0, 4.95]) {
															cube(size = [2.0500000000000003, 30.0, 2.05]);
														}
														translate(v = [3.4499999999999997, -30.0, 4.95]) {
															cube(size = [2.0500000000000003, 30.0, 2.05]);
														}
													}
													union();
												}
											}
										}
									}
									union();
								}
							}
						}
						translate(v = [0, 0, 0]) {
							rotate(a = [0, 0, 0]) {
								difference() {
									union() {
										translate(v = [-5.5, -182.05, 0]) {
											cube(size = [11.0, 152.1, 10.5]);
										}
									}
									union() {
										translate(v = [-5.6, 0, 0]) {
											rotate(a = [90, 0, 90]) {
												linear_extrude(height = 11.2) {
													polygon(points = [[-29.8, 7.0], [-33.5, 10.5], [-33.5, 10.7], [-29.8, 10.7]]);
												}
											}
										}
										translate(v = [-5.6, 0, 0]) {
											rotate(a = [90, 0, 90]) {
												linear_extrude(height = 11.2) {
													polygon(points = [[-182.2, 7.0], [-178.5, 10.5], [-178.5, 10.7], [-182.2, 10.7]]);
												}
											}
										}
									}
								}
							}
						}
						translate(v = [-9.5, -107.5, 0]) {
							cube(size = [19.0, 3.0, 10.5]);
						}
					}
					union();
				}
			}
		}
	}
	union();
}
